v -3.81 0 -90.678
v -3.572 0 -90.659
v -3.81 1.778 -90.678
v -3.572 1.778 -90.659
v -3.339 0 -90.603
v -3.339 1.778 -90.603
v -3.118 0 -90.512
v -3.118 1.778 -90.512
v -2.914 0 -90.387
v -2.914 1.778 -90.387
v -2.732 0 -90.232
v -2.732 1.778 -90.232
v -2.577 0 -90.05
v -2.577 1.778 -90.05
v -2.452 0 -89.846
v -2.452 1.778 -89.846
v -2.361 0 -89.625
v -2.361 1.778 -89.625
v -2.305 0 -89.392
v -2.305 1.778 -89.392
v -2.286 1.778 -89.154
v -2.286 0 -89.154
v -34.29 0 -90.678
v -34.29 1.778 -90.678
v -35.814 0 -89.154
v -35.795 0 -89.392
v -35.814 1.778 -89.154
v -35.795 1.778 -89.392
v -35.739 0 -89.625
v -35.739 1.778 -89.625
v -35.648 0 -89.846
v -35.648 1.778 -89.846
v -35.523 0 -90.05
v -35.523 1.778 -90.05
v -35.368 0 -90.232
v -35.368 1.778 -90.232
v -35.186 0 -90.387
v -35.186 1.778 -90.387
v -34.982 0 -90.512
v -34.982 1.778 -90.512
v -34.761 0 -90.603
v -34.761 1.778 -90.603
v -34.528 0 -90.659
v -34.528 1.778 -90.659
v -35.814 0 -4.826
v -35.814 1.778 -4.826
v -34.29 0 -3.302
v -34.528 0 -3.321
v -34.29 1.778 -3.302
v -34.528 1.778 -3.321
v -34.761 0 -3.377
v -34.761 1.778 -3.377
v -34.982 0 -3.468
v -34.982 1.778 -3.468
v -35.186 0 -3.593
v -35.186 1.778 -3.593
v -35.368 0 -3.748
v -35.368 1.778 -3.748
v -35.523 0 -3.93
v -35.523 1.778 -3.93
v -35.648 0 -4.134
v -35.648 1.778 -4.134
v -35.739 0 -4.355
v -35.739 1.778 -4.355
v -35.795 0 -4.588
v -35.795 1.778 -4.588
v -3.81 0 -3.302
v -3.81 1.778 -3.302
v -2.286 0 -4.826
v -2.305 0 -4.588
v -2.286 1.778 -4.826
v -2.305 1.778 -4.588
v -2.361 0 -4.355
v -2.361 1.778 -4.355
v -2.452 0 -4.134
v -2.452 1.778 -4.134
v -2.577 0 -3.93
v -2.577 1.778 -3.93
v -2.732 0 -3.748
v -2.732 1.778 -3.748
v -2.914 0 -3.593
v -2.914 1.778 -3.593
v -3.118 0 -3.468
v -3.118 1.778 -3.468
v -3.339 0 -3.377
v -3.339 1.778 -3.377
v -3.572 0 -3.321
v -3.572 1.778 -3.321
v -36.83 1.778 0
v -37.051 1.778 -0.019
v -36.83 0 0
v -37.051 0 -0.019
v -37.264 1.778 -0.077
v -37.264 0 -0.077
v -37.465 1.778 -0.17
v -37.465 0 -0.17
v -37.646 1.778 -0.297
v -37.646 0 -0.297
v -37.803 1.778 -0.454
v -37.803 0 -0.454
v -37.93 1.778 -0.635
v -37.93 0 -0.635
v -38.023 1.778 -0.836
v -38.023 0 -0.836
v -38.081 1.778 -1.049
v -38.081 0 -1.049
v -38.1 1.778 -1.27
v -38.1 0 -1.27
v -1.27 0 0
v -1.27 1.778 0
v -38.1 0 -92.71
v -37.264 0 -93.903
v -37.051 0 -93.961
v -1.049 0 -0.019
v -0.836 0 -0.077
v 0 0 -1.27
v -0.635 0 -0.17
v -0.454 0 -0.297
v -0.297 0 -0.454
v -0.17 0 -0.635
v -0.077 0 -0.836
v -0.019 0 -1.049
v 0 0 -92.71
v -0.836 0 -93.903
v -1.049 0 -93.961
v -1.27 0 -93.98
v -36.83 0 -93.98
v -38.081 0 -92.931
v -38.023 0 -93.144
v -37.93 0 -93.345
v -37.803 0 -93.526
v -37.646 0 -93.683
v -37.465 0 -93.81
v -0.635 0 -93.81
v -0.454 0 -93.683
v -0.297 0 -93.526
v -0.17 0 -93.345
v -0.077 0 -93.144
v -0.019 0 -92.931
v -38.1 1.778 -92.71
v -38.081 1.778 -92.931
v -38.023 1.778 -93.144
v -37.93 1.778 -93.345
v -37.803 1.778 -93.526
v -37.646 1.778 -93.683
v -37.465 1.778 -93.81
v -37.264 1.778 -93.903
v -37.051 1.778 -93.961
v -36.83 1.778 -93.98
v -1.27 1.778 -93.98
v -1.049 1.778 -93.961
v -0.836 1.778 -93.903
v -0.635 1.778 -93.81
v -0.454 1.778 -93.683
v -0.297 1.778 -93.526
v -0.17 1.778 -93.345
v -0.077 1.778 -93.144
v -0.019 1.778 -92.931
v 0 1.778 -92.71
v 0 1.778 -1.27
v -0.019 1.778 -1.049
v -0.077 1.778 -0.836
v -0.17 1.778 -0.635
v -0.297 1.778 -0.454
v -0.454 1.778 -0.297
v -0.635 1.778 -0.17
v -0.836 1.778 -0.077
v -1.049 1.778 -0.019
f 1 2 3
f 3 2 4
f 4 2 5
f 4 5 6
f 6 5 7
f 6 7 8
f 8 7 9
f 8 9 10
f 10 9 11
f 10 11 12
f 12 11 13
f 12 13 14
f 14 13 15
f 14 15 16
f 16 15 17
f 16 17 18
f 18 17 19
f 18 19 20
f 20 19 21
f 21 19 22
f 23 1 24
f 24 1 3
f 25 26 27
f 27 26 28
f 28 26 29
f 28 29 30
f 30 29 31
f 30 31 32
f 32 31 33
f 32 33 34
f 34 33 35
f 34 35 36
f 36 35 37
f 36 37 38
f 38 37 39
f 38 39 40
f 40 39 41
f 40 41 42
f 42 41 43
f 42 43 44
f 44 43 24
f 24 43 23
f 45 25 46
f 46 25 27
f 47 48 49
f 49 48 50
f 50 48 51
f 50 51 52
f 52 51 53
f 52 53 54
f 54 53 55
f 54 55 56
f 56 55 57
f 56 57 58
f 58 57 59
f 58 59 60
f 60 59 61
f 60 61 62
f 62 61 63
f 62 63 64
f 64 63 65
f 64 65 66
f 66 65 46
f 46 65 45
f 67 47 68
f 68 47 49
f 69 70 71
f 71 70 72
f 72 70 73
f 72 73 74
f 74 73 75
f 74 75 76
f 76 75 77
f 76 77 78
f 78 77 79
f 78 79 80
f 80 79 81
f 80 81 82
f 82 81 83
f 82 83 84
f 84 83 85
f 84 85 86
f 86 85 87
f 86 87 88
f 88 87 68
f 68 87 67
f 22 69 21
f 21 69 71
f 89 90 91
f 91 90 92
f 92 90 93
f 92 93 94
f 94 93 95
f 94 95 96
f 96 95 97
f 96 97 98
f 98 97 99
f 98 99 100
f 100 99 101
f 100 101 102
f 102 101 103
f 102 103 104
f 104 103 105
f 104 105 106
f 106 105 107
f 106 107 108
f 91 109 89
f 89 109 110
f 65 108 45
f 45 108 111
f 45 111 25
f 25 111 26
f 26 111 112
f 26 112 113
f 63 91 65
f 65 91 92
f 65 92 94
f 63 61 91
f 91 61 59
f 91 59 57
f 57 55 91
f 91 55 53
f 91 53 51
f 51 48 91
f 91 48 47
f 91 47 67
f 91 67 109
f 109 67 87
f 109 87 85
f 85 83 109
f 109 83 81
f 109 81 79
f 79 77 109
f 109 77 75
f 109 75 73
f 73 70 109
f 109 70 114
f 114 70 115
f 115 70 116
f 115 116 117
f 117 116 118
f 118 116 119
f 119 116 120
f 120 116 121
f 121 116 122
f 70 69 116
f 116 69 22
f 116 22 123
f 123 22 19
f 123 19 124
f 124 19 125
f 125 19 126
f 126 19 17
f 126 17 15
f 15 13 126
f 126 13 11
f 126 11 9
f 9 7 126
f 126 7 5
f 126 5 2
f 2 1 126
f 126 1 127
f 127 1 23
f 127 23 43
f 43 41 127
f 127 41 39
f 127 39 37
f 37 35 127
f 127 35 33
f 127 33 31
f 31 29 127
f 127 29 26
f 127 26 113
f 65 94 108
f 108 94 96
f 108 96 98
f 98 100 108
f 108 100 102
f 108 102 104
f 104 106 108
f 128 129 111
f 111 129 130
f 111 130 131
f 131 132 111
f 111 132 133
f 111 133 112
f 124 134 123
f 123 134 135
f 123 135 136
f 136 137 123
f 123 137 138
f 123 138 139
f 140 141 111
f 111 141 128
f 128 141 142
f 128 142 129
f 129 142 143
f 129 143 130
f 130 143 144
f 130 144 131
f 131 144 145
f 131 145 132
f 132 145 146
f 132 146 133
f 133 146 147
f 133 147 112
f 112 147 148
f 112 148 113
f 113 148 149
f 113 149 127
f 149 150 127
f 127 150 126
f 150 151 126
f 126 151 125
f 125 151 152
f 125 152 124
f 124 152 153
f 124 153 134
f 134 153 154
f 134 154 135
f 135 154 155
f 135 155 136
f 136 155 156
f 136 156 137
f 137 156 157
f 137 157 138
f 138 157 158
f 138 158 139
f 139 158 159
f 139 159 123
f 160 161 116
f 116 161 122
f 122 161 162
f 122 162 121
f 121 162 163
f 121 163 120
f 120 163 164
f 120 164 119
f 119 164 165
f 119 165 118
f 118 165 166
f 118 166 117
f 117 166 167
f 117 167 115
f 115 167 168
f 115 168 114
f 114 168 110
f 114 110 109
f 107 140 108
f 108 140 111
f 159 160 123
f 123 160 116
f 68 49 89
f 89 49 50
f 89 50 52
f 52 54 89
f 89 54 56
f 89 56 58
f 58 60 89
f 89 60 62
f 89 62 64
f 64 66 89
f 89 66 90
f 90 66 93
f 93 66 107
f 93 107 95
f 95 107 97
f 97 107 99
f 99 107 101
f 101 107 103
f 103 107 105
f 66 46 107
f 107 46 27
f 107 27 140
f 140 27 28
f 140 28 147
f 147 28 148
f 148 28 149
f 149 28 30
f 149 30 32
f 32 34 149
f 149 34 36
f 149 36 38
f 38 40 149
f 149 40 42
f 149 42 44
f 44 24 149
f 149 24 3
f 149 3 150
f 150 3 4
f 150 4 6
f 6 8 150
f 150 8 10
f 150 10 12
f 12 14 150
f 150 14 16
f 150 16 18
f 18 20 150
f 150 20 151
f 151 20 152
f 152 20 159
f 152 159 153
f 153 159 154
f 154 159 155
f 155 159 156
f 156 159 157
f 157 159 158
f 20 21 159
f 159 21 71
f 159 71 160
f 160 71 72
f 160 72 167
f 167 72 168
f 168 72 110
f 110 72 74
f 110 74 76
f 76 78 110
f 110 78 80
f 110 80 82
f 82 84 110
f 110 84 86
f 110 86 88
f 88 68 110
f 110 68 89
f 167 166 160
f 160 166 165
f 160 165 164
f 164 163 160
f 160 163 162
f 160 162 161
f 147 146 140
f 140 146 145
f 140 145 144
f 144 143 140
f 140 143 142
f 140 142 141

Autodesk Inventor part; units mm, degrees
ref_plane "YZ Plane" through (0, 0, 0) normal (1, 0, 0) x (0, 1, 0)
ref_plane "XZ Plane" through (0, 0, 0) normal (0, 1, 0) x (-1, 0, 0)
ref_plane "XY Plane" through (0, 0, 0) normal (0, 0, 1) x (1, 0, 0)
sketch "Sketch1" plane through (0, 0, 0) normal (0, 1, 0) x (-1, 0, 0)
  line L0 (0, 0) -> (38.1, 0)
  line L1 (38.1, 0) -> (38.1, -93.98)
  line L2 (38.1, -93.98) -> (0, -93.98)
  line L3 (0, -93.98) -> (0, 0)
  dimension "d0" = 38.1
  dimension "d1" = 93.98
extrude "Extrusion1" add sketch "Sketch1" along normal blind 1.778
fillet "Fillet1" radius 1.27 4 edges at (0, 0.889, 0) (0, 0.889, -93.98) (-38.1, 0.889, -93.98) (-38.1, 0.889, 0)
sketch "Sketch3" plane through (0, 1.778, 0) normal (0, 1, 0) x (1, 0, 0)
  arc A0 (-38.1, 1.27) -> (-36.83, 0) centre (-36.83, 1.27) ccw projected
  line L0 (-36.83, 0) -> (-1.27, 0) projected
  arc A1 (-1.27, 0) -> (0, 1.27) centre (-1.27, 1.27) ccw projected
  line L1 (0, 1.27) -> (0, 92.71) projected
  arc A2 (0, 92.71) -> (-1.27, 93.98) centre (-1.27, 92.71) ccw projected
  line L2 (-1.27, 93.98) -> (-36.83, 93.98) projected
  arc A3 (-36.83, 93.98) -> (-38.1, 92.71) centre (-36.83, 92.71) ccw projected
  line L3 (-38.1, 92.71) -> (-38.1, 1.27) projected
  line L4 (-35.814, 2.286) -> (-2.286, 2.286)
  line L5 (-2.286, 4.826) -> (-2.286, 89.154)
  line L6 (-2.286, 91.694) -> (-35.814, 91.694)
  line L7 (-35.814, 89.154) -> (-35.814, 4.826)
  line L8 (-34.29, 3.302) -> (-3.81, 3.302)
  line L9 (-34.29, 90.678) -> (-3.81, 90.678)
  arc A4 (-35.814, 4.826) -> (-34.29, 3.302) centre (-34.29, 4.826) ccw
  arc A5 (-3.81, 3.302) -> (-2.286, 4.826) centre (-3.81, 4.826) ccw
  arc A6 (-2.286, 89.154) -> (-3.81, 90.678) centre (-3.81, 89.154) ccw
  arc A7 (-34.29, 90.678) -> (-35.814, 89.154) centre (-34.29, 89.154) ccw
  point P0 (0, 0)
  dimension "d9" = 2.286
  dimension "d10" = 1.016
  dimension "d11" = 1.016
  dimension "d12" = 1.524
extrude "Extrusion3" cut sketch "Sketch3" against normal through all contours A5 L8 A4 L7 A7 L9 A6 L5
properties part number "TopCoverContactSpacer" material "ABS Plastic"
